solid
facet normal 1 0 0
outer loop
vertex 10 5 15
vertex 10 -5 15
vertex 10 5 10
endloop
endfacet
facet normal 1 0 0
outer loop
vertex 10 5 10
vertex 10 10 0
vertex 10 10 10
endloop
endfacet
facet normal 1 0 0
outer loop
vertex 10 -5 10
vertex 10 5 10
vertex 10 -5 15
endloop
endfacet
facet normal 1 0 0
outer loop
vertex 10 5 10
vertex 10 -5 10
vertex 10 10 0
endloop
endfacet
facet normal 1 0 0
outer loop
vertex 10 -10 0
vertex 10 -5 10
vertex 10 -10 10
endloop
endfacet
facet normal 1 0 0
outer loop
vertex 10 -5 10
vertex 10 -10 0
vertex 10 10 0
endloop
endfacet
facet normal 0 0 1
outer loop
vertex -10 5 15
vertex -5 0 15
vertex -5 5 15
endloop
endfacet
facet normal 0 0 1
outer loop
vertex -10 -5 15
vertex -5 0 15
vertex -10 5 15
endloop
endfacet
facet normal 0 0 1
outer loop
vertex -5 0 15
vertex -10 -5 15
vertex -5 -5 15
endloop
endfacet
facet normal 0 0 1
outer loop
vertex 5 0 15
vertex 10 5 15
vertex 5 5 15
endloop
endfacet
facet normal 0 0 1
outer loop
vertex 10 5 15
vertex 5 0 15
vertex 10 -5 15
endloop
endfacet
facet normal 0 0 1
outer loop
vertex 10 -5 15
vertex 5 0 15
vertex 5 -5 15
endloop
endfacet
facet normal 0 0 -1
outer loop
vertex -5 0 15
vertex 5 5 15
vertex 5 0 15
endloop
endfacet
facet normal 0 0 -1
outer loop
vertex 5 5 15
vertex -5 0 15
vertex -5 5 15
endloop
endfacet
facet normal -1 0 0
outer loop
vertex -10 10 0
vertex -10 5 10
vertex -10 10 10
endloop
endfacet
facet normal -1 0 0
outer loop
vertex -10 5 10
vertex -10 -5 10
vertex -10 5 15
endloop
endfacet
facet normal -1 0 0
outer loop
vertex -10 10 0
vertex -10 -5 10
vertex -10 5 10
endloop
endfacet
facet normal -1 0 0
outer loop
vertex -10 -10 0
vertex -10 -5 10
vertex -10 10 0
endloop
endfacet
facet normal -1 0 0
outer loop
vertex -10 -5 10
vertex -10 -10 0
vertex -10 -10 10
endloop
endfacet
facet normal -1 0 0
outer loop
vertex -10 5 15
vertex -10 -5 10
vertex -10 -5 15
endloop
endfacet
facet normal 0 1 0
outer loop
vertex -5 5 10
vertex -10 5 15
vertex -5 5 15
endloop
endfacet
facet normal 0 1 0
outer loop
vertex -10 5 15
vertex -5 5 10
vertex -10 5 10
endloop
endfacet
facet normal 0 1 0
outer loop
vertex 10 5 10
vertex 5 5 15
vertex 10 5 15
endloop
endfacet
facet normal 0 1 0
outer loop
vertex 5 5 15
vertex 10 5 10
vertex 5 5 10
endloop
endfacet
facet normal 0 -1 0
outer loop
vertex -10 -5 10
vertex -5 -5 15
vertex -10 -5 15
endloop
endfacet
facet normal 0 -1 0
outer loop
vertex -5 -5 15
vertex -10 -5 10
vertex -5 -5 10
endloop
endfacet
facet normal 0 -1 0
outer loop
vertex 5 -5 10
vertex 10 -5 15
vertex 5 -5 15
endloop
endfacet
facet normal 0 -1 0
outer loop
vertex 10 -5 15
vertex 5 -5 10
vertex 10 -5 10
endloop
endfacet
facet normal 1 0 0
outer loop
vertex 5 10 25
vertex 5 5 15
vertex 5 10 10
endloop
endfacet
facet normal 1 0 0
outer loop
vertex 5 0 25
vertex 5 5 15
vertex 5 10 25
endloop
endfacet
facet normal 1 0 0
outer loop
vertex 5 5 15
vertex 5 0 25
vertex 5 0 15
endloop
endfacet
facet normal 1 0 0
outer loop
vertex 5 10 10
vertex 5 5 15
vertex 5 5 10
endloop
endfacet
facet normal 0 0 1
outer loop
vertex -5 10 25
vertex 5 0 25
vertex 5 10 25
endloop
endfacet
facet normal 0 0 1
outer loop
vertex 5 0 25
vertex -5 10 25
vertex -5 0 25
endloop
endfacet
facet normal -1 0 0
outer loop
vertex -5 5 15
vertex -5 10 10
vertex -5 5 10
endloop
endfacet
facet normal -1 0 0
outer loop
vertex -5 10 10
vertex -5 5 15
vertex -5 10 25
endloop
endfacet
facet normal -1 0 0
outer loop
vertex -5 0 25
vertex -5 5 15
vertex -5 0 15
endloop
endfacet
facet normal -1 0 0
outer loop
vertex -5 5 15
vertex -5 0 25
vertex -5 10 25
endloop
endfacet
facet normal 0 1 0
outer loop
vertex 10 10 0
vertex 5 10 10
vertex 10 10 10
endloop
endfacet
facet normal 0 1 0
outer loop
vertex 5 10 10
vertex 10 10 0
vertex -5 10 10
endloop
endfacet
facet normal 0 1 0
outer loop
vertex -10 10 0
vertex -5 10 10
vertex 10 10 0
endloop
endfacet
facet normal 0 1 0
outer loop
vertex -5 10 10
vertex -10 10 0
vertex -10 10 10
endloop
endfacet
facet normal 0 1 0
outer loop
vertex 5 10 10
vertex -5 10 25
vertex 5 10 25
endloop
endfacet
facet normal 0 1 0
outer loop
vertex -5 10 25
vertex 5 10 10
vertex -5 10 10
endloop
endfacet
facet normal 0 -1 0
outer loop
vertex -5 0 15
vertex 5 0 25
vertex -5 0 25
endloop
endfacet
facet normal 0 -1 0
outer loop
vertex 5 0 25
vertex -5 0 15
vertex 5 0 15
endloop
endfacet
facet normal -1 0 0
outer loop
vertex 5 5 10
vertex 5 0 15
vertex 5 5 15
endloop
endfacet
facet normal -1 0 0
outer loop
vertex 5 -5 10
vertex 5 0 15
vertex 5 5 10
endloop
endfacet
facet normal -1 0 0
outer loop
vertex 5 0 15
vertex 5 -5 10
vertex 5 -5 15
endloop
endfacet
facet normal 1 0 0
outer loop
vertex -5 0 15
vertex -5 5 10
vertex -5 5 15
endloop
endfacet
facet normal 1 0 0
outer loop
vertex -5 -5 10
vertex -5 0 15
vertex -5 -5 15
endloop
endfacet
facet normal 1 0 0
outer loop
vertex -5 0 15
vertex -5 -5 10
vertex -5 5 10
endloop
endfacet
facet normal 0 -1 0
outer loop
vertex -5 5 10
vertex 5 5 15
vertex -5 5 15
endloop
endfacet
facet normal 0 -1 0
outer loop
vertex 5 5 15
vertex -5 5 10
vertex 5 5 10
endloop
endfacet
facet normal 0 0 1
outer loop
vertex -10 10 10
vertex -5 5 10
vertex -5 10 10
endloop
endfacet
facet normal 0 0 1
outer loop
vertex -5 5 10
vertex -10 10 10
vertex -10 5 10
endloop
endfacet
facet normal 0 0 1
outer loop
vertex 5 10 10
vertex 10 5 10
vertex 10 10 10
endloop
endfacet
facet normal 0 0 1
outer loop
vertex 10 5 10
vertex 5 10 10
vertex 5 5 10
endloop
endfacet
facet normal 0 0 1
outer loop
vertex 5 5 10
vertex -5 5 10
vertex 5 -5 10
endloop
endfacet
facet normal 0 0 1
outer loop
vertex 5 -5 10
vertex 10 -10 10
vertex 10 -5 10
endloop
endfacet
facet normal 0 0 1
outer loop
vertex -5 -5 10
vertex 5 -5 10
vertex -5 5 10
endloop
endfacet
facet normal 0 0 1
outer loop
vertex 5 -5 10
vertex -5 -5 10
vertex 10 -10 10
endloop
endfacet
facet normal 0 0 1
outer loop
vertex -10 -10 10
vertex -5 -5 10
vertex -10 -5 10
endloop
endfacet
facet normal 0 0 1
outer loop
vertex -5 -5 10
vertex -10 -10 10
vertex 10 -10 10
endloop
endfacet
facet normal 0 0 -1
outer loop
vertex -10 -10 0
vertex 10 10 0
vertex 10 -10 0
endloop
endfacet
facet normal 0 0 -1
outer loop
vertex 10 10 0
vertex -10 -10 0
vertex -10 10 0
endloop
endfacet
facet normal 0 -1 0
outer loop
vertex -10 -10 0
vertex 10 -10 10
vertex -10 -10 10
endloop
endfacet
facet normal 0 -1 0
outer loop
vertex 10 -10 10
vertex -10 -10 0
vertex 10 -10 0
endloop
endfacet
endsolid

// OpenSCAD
// Base block
module base_block() {
    // Removed the protrusions to restore a flat and uniform surface
    cube([20, 20, 10], center = true);
}

// L-shaped connector
module l_shaped_connector() {
    difference() {
        union() {
            cube([20, 10, 10], center = true);
            translate([0, 5, 5])
                cube([10, 10, 20], center = true);
        }
        translate([0, 0, 0])
            cube([10, 10, 10], center = true);
    }
}

// Triangular support
module triangular_support() {
    // Reoriented the triangular support so its slanted side faces outward
    polyhedron(
        points = [
            [0, 0, 0], [10, 0, 0], [0, 10, 0], // Base vertices
            [0, 0, 10]                        // Apex vertex
        ],
        faces = [
            [0, 1, 2], [0, 1, 3], [1, 2, 3], [2, 0, 3]
        ]
    );
}

// Assembly
module assembly() {
    // Layer 1: Base block
    translate([0, 0, 5])
        base_block();

    // Layer 2: L-shaped connector
    // Repositioned the L-shaped connector lower and detached from the base block
    translate([0, 0, 10])
        l_shaped_connector();

    // Layer 3: Triangular support
    // Adjusted the position and orientation of the triangular support
    translate([0, 0, 25])
        rotate([0, 0, 180]) // Rotate to ensure slanted side faces outward
        triangular_support();
}

// Render the assembly
assembly();
